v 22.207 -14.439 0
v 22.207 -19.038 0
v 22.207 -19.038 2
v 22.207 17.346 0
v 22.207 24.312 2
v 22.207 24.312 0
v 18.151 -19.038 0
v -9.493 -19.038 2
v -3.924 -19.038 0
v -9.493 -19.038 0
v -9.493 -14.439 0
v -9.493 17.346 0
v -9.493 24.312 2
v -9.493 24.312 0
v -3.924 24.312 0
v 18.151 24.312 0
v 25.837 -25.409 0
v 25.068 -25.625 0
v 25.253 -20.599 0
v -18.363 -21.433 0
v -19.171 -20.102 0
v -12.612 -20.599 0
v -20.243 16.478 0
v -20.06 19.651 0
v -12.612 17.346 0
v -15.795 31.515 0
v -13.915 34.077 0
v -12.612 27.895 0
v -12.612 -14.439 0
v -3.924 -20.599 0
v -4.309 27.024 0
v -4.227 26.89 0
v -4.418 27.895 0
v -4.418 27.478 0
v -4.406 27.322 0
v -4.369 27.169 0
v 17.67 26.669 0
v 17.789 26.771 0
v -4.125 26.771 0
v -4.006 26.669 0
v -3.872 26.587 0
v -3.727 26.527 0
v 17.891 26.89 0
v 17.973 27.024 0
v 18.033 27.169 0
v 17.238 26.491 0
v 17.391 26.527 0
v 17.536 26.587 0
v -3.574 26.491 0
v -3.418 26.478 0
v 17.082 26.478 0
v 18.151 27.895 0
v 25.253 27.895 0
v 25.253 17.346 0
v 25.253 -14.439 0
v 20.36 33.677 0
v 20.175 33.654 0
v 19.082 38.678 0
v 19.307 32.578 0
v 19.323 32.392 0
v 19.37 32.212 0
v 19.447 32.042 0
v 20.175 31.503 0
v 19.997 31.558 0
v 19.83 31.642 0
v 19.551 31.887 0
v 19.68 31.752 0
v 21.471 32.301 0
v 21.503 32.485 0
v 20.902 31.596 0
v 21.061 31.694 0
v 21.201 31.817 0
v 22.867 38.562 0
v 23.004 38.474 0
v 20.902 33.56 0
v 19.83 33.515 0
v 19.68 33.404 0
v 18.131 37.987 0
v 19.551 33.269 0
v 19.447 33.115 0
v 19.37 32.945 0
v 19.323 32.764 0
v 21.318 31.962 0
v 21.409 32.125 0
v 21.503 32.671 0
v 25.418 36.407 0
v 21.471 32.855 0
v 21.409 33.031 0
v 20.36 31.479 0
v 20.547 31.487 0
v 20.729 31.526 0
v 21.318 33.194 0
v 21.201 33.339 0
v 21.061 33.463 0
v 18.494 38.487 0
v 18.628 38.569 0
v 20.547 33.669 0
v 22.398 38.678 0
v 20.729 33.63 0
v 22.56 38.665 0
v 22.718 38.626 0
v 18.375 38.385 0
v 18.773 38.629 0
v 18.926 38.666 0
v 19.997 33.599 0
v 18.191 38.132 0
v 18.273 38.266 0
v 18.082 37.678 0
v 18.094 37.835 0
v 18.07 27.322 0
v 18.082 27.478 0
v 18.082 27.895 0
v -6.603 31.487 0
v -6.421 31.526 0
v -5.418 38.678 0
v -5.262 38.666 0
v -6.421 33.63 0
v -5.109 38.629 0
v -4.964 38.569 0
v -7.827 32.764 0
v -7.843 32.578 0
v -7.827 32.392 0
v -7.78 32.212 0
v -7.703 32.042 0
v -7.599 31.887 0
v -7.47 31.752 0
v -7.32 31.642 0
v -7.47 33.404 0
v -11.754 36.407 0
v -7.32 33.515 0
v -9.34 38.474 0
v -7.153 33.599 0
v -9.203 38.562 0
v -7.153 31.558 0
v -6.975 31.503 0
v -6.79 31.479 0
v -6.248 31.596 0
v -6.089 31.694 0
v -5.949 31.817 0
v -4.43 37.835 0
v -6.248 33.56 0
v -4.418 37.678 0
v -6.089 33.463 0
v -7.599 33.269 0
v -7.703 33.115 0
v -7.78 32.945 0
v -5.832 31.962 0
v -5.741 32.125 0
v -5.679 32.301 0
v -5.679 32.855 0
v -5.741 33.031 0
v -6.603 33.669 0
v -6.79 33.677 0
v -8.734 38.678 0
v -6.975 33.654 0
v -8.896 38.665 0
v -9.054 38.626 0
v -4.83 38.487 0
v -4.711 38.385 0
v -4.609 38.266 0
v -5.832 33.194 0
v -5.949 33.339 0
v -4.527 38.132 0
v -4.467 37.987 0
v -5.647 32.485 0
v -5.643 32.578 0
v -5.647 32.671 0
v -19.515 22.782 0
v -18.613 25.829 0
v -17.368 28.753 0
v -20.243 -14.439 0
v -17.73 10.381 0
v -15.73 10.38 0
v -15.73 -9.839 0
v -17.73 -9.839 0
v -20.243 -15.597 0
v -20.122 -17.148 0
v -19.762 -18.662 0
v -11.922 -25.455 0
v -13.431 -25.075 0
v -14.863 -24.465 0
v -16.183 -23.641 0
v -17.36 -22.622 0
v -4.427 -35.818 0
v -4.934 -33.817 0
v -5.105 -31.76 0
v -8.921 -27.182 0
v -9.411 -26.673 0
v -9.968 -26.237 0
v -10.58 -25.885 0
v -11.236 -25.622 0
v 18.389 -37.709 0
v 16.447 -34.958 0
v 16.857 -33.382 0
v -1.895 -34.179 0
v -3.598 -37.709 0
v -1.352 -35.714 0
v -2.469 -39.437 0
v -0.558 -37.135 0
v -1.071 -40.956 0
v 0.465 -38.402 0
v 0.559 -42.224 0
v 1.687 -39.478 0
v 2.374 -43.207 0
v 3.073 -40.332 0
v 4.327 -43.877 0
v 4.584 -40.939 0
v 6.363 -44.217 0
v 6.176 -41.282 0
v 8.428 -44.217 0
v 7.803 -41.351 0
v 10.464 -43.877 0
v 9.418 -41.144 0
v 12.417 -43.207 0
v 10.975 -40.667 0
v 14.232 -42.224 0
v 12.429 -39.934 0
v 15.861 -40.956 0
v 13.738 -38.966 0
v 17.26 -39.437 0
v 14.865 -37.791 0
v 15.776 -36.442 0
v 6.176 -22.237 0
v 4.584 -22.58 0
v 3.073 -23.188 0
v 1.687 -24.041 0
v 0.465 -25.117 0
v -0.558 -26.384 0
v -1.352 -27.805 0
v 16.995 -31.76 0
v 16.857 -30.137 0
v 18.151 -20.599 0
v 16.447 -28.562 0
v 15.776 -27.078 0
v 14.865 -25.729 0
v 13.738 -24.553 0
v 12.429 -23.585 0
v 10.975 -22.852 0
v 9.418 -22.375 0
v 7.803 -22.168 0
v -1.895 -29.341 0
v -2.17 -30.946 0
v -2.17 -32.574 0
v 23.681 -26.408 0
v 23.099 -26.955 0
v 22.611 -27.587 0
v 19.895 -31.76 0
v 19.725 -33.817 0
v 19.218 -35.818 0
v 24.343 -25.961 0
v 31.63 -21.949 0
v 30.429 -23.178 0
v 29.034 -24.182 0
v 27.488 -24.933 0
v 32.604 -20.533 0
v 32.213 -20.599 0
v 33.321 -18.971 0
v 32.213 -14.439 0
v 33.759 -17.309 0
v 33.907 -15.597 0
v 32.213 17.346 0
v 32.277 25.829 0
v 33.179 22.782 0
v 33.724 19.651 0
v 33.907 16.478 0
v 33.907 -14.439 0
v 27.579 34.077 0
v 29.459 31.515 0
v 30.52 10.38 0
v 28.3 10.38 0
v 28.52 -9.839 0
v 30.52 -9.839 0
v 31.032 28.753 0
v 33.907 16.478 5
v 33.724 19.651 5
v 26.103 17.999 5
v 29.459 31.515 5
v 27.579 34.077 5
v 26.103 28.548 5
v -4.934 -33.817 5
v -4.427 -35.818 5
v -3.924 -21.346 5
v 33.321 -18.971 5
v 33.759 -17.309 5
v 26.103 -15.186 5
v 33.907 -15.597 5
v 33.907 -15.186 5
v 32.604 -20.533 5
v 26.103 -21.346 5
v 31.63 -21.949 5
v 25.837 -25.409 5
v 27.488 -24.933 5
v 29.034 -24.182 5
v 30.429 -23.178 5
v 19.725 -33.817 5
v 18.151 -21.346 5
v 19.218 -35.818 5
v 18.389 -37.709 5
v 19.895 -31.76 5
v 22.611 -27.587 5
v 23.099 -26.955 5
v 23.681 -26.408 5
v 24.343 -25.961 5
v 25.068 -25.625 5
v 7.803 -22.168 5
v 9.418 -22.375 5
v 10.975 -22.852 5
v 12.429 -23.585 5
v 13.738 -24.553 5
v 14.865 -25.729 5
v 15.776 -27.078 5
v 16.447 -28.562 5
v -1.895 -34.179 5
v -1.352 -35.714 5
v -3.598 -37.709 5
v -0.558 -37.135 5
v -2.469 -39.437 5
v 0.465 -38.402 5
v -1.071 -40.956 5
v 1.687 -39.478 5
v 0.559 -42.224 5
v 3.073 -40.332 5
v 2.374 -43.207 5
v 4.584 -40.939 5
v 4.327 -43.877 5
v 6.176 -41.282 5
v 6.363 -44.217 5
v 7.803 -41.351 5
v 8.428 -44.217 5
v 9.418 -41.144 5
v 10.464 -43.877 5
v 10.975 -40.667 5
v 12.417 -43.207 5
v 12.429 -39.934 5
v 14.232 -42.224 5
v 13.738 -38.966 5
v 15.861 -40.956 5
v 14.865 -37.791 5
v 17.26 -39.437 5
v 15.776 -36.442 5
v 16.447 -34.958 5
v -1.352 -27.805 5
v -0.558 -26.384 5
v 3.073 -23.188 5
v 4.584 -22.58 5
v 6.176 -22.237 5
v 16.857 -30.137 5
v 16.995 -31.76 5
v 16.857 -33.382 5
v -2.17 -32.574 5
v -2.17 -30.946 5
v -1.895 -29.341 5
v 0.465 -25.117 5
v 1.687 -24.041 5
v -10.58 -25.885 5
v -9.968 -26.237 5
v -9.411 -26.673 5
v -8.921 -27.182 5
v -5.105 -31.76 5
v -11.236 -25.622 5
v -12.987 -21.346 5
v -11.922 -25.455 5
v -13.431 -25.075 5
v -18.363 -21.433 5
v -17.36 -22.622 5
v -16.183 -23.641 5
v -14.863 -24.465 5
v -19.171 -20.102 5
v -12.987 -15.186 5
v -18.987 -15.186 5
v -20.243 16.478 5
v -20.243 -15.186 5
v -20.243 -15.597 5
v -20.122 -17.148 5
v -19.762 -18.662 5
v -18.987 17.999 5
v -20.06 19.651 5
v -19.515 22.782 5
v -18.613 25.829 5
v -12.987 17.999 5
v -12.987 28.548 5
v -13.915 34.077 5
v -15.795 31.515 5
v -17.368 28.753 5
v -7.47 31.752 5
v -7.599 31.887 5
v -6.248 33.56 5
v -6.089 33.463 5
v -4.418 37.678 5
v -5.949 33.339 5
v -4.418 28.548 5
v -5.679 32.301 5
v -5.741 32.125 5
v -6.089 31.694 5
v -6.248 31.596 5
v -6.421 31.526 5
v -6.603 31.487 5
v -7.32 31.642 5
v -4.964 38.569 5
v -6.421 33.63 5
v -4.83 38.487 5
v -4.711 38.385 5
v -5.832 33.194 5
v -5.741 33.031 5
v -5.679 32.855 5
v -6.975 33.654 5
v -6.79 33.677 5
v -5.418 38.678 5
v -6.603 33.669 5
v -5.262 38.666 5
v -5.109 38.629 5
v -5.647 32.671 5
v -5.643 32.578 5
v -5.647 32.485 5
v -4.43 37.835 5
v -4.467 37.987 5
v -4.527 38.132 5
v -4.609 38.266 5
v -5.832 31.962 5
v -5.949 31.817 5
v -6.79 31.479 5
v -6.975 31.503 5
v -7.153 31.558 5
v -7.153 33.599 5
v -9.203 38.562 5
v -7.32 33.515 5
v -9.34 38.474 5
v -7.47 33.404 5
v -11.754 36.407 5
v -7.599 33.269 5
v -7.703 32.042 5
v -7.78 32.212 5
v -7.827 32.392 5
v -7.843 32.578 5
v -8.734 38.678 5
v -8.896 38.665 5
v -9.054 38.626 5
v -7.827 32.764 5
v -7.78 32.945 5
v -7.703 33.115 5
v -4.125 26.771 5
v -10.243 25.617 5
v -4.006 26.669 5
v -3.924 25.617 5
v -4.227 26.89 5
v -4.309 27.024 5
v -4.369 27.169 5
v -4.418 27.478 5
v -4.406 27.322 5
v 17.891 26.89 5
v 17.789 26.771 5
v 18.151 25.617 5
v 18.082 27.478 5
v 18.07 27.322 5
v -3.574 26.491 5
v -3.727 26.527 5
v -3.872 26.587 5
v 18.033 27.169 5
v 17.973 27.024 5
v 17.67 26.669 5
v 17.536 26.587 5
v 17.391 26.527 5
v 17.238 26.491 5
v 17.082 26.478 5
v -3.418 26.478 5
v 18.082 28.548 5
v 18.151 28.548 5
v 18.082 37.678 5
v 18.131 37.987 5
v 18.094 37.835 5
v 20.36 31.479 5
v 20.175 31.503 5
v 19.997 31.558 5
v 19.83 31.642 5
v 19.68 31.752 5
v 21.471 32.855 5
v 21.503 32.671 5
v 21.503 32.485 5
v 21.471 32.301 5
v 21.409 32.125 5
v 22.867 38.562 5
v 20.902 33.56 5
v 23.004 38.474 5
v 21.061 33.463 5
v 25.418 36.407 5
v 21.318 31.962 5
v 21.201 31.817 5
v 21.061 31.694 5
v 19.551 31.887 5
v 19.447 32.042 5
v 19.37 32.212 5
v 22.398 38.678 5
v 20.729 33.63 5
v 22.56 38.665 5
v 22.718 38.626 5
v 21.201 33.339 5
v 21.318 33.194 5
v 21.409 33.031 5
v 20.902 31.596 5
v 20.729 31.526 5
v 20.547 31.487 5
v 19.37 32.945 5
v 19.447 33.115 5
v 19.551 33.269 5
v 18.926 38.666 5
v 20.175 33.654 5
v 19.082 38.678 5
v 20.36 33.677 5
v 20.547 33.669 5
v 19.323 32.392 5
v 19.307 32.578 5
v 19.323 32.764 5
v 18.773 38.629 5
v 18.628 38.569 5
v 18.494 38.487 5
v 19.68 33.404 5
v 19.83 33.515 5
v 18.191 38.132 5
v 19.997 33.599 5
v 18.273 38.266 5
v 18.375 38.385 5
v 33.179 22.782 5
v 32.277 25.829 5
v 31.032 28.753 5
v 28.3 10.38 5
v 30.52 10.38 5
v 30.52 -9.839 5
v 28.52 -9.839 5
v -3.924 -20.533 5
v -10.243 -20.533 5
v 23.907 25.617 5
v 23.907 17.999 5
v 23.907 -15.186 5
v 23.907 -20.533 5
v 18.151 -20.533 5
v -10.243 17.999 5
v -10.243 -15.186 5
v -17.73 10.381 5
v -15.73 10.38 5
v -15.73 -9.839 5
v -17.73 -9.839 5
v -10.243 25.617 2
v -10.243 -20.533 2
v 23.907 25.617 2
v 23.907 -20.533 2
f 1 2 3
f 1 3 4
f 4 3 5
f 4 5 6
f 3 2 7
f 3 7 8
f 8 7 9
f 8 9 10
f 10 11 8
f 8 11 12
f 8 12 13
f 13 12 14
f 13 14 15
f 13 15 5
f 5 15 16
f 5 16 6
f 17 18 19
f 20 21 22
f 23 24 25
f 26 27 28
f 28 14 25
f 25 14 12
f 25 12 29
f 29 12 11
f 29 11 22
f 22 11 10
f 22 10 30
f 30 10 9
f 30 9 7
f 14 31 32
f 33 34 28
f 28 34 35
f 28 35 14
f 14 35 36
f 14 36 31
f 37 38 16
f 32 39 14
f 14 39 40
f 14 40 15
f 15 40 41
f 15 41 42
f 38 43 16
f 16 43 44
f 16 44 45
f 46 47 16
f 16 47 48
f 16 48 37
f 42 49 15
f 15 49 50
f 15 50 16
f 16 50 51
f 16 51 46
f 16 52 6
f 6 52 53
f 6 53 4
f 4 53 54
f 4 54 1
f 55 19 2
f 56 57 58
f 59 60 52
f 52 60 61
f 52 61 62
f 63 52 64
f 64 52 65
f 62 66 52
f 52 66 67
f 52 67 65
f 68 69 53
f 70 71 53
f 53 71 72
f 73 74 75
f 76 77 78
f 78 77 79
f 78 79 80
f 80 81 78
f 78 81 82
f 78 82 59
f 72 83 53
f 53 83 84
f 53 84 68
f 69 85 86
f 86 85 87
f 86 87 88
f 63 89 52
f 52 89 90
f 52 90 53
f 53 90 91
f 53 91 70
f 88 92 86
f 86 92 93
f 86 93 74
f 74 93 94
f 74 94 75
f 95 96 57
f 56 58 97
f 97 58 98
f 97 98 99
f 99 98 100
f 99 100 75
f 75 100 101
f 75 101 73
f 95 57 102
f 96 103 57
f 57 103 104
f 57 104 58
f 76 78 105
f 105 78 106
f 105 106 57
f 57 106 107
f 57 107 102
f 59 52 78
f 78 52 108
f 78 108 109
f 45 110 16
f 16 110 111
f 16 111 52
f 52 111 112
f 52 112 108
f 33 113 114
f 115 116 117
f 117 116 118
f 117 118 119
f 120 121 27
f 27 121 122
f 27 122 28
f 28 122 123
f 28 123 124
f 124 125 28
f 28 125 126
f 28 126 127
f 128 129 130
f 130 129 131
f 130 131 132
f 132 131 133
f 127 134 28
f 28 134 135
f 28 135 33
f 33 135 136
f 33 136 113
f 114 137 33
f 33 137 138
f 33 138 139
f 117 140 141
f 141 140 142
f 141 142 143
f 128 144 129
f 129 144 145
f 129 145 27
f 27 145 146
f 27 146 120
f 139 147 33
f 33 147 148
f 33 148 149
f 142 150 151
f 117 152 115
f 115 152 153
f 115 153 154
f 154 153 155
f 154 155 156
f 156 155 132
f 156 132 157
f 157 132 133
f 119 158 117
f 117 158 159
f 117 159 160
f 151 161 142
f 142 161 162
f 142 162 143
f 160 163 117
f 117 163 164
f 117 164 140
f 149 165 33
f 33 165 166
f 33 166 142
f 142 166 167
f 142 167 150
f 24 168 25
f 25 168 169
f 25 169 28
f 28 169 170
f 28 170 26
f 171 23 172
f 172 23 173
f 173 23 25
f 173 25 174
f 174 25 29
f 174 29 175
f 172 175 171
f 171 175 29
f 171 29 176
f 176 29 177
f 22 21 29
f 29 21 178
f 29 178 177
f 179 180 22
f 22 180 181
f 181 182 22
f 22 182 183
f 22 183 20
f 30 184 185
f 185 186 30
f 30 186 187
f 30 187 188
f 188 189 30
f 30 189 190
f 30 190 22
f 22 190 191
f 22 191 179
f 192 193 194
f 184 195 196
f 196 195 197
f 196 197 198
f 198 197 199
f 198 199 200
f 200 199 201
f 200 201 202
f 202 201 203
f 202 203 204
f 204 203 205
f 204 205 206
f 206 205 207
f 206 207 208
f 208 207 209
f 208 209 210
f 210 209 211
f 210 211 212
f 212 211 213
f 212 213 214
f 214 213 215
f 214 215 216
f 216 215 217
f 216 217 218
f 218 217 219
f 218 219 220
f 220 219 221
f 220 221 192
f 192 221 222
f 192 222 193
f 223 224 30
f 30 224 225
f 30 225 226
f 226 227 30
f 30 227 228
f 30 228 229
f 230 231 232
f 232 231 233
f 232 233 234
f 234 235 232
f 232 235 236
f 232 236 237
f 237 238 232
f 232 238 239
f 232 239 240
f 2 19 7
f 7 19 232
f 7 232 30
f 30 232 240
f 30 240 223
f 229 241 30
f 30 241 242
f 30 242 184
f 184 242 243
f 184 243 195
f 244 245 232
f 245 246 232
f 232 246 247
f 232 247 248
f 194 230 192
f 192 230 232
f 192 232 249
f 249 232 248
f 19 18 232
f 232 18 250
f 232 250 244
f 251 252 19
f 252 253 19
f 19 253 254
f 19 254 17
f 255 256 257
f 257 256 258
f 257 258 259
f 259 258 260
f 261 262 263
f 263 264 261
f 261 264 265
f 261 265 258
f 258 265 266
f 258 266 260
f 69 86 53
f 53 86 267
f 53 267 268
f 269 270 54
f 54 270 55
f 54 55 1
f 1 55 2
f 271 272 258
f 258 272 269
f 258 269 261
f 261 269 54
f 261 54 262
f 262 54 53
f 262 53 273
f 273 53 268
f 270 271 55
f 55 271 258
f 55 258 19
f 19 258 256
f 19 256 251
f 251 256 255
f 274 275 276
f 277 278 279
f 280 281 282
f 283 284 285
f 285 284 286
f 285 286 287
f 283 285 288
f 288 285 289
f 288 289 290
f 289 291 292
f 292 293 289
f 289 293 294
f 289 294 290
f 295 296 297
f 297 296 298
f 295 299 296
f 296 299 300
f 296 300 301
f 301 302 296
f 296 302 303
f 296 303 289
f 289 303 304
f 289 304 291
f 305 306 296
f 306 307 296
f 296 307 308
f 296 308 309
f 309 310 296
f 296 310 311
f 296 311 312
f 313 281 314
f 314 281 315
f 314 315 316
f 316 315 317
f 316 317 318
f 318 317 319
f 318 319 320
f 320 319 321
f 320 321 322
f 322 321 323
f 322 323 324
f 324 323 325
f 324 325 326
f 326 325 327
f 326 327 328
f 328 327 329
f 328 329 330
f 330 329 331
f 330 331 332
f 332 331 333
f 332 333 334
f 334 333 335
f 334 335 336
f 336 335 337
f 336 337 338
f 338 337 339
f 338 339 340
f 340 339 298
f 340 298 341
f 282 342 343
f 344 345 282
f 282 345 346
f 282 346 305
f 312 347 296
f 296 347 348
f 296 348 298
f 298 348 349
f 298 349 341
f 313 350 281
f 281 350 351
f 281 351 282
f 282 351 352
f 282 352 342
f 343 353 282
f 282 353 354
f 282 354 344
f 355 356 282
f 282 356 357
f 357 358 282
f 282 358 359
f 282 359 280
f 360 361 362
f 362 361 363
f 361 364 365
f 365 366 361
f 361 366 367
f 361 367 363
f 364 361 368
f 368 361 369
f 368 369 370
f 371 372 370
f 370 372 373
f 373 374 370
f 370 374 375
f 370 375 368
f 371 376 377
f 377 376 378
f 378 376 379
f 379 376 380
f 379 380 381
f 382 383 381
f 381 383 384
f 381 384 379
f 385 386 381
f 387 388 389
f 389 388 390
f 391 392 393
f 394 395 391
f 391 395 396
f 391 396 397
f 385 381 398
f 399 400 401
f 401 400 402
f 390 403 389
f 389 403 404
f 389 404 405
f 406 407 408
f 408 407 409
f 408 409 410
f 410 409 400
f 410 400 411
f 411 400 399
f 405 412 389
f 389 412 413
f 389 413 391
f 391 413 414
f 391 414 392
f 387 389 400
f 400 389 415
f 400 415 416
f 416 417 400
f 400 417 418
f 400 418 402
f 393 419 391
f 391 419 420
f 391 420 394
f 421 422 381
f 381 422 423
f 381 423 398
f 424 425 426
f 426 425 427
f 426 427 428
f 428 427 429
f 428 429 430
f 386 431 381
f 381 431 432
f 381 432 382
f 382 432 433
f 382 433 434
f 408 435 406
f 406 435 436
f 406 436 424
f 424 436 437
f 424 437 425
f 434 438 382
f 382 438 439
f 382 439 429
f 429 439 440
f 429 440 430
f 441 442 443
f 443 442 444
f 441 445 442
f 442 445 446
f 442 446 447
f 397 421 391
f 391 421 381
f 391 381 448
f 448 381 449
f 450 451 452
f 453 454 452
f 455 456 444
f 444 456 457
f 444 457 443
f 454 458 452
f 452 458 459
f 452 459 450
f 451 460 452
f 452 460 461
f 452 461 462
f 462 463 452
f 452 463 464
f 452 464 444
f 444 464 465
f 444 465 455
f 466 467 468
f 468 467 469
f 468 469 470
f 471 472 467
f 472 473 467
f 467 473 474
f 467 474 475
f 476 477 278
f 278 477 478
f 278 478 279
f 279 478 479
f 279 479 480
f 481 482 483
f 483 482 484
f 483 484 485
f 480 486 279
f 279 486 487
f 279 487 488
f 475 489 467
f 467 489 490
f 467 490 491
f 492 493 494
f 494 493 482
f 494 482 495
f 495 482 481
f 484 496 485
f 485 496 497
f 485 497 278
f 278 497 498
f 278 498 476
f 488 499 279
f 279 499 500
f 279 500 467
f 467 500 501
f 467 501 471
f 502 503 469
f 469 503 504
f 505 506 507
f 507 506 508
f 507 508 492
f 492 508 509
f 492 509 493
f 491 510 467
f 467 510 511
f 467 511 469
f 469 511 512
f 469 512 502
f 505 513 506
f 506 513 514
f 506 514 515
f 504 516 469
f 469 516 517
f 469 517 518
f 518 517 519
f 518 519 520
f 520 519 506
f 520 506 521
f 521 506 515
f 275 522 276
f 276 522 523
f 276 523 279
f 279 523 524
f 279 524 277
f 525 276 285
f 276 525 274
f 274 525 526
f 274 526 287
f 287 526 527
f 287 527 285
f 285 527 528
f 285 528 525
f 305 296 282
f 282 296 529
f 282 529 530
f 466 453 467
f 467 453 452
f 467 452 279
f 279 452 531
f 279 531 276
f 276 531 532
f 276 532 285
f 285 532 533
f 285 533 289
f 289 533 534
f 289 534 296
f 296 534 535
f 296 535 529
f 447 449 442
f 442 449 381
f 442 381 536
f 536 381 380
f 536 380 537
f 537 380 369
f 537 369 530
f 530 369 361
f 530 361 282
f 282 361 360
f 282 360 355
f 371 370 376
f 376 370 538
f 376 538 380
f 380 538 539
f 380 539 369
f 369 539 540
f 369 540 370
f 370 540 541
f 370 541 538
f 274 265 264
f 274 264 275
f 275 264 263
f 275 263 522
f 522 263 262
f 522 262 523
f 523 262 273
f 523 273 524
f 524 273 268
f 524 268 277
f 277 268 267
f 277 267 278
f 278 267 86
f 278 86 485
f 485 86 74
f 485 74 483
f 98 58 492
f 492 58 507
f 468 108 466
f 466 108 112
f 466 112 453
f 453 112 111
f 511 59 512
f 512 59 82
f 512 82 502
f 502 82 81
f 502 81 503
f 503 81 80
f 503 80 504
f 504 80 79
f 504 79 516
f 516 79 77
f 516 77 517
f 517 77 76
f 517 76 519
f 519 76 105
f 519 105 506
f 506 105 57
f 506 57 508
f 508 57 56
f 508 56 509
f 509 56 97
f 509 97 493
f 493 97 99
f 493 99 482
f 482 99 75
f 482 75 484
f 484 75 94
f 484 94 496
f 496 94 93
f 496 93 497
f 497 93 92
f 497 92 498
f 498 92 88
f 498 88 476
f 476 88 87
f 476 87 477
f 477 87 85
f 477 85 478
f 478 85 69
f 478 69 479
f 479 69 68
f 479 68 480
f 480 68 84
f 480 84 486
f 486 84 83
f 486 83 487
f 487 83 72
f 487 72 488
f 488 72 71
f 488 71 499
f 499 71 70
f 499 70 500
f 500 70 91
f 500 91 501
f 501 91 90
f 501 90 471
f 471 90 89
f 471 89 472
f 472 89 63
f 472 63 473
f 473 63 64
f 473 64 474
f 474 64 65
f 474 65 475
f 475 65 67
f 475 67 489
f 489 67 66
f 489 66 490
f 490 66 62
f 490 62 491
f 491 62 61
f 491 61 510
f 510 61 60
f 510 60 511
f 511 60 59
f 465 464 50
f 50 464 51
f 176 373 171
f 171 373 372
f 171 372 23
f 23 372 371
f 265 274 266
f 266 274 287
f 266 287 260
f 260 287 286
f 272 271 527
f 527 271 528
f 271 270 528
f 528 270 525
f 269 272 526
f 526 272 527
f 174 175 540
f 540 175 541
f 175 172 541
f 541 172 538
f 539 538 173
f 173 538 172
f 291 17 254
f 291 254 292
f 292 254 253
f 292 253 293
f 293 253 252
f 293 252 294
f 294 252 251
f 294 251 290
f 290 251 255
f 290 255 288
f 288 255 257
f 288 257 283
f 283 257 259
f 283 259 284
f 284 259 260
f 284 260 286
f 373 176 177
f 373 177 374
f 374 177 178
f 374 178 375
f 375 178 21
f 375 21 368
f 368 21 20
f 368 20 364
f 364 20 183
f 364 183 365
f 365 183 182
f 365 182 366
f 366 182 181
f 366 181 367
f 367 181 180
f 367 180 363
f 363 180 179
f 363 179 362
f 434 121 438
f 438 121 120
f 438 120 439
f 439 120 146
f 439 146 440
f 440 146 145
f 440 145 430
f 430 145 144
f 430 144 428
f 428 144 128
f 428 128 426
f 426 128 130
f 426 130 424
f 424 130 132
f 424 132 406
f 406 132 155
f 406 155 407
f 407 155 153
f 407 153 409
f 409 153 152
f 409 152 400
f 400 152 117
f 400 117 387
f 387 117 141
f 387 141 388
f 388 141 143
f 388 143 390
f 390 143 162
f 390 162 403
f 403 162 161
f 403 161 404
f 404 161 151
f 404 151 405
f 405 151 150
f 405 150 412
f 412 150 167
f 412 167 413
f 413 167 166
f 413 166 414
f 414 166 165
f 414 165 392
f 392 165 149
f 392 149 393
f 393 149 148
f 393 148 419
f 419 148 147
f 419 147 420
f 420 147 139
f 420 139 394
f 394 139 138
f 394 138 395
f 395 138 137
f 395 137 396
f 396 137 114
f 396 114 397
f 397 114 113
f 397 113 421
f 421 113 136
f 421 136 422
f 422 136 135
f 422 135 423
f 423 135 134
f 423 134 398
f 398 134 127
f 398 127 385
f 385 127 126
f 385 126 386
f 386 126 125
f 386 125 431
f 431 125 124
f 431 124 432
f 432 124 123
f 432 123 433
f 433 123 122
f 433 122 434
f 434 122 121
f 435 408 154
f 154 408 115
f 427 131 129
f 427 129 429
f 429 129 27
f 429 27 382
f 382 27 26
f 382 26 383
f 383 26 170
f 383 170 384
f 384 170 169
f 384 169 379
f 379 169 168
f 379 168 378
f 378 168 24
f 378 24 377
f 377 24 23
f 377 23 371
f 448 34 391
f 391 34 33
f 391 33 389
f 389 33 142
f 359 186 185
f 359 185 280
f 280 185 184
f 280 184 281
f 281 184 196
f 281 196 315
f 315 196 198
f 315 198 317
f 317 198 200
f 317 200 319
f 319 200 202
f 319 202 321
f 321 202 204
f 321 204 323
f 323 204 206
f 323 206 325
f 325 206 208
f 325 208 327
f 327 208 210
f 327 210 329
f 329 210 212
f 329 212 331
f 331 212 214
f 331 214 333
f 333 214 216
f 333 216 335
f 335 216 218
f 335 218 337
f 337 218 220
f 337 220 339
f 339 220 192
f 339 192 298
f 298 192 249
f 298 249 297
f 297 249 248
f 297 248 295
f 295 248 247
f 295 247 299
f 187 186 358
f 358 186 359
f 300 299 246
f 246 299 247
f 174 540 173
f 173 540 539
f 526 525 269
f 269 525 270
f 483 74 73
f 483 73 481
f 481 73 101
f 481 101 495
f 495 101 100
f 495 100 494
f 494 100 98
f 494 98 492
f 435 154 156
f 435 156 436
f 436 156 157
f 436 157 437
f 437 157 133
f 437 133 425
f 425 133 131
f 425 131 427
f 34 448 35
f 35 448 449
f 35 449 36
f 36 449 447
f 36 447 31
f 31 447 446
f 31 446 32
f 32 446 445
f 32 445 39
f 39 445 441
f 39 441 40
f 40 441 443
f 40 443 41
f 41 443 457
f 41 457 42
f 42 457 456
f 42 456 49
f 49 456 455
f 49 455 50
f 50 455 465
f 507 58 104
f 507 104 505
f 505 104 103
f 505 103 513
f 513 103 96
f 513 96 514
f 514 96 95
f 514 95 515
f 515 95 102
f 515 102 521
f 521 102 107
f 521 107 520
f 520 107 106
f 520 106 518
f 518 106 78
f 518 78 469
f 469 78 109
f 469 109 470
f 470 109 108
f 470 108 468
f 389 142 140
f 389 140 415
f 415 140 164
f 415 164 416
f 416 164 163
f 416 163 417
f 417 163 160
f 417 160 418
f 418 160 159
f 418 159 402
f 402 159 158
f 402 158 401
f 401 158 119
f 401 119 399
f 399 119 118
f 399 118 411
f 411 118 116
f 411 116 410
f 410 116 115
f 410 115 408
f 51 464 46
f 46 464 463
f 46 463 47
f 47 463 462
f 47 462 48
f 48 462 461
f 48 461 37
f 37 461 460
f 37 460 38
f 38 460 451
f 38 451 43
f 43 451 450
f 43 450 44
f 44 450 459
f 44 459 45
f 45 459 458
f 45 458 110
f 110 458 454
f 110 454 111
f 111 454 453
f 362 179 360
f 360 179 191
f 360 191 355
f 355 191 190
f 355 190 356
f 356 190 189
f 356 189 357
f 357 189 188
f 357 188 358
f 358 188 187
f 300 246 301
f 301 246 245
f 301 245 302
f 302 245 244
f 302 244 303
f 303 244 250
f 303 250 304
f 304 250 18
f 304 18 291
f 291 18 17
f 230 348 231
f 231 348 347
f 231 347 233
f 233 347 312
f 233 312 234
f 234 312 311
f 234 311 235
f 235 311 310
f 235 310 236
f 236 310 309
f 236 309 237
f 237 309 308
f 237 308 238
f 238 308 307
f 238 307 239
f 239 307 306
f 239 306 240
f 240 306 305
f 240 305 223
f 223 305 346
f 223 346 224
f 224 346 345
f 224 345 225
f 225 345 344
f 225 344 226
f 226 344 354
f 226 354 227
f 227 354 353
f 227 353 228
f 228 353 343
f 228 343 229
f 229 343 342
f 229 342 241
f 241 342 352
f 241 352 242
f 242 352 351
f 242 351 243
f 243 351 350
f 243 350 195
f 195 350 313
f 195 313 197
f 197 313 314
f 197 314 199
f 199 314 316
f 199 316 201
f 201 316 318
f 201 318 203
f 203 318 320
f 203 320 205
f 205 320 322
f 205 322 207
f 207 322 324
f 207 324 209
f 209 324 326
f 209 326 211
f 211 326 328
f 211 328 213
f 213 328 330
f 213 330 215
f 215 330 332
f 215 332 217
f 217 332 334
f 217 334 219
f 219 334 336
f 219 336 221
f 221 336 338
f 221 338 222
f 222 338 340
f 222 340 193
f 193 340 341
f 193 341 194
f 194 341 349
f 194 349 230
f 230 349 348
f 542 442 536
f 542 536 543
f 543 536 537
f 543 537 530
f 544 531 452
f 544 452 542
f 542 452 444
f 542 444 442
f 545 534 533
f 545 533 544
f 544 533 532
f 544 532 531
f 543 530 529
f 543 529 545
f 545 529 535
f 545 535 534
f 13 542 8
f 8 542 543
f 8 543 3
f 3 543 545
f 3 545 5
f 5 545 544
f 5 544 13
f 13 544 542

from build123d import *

# Parameters (mm, degrees)
ESQUISSE1_W             = 31.7
ESQUISSE1_H             = 43.35
BOSS_EXTRU_1_DEPTH      = 2
ESQUISSE2_W             = 54.15
ESQUISSE2_H             = 52.075
ESQUISSE2_W_2           = 34.15
ESQUISSE2_H_2           = 46.15
BOSS_EXTRU_2_DEPTH      = 3
ENL_V_MAT_EXTRU_1_DEPTH = 44.310222651
CONG_1_R                = 10
BOSS_EXTRU_3_START      = 5
ESQUISSE4_R             = 1.1
ESQUISSE4_W             = 2
ESQUISSE4_H             = 20.22
ESQUISSE4_W_2           = 2.219999677
ESQUISSE4_H_2           = 20.218803133
BOSS_EXTRU_3_DEPTH      = 5
CONG_2_R                = 1
CONG_3_R                = 5
ESQUISSE5_R             = 9.6
ENL_V_MAT_EXTRU_2_DEPTH = 56.978552241
ESQUISSE7_W             = 31.7
ESQUISSE7_H             = 43.35
ENL_V_MAT_EXTRU_3_DEPTH = 56.978552241
ESQUISSE7_4_W           = 34.15
ESQUISSE7_4_H           = 46.15
ENL_V_MAT_EXTRU_4_DEPTH = 3


with BuildPart() as part:
    # Esquisse1 → Boss.-Extru.1 (new body)
    with BuildSketch(Plane.XY):
        Polygon((-20.243056538, 24.478190482), (-20.243056538, -25.521809518), (-20.243056538, -25.596809518), (6.831943462, -25.596809518), (33.906943462, -25.596809518), (33.906943462, -25.521809518), (33.906943462, 24.478190482), (33.906943462, 26.478190482), (5.831943462, 26.478190482), (-20.243056538, 26.478190482), align=None)
        with Locations((6.356943462, -0.426809518)):
            Rectangle(ESQUISSE1_W, ESQUISSE1_H, mode=Mode.SUBTRACT)
    extrude(amount=BOSS_EXTRU_1_DEPTH)

    # Esquisse2 → Boss.-Extru.2 (add)
    with BuildSketch(Plane.XY.offset(2)):
        with Locations((6.831943462, 0.440690482)):
            Rectangle(ESQUISSE2_W, ESQUISSE2_H)
        with Locations((5.881943462, -0.331809518)):
            Rectangle(ESQUISSE2_W_2, ESQUISSE2_H_2, mode=Mode.SUBTRACT)
    extrude(amount=BOSS_EXTRU_2_DEPTH)

    # Esquisse3 → Enl_v. mat.-Extru.1 (cut, through all)
    with BuildSketch(Plane.XY.offset(5)):
        Polygon((-17.730491461, -9.839116901), (-17.730491461, 10.380883099), (-15.510491784, 10.379686232), (-15.730491461, -9.839116901), align=None)
        Polygon((28.519508539, -9.839116901), (28.299508862, 10.379686232), (30.519508539, 10.380883099), (30.519508539, -9.839116901), align=None)
    extrude(amount=-ENL_V_MAT_EXTRU_1_DEPTH, mode=Mode.SUBTRACT)

    # Cong_1
    cong_1_edges = [part.edges().sort_by_distance(p)[0] for p in [
        (33.906943462, 26.478190482, 2.5),
        (33.906943462, -25.596809518, 2.5),
        (-20.243056538, -25.596809518, 2.5),
        (-20.243056538, 26.478190482, 2.5),
    ]]
    fillet(cong_1_edges, radius=CONG_1_R)

    # Esquisse4 → Boss.-Extru.3 (add)
    with BuildSketch(Plane.XY.offset(BOSS_EXTRU_3_START)):
        with BuildLine():
            Line((-9.068056538, 38.678190482), (-4.418056538, 38.678190482))
            Line((-4.418056538, 38.678190482), (-4.418056538, 26.478190482))
            Line((-4.418056538, 26.478190482), (18.081943462, 26.478190482))
            Line((18.081943462, 26.478190482), (18.081943462, 38.678190482))
            Line((18.081943462, 38.678190482), (22.731943462, 38.678190482))
            ThreePointArc((22.731943462, 38.678190482), (30.955617573, 28.905183532), (33.906943462, 16.478190482))
            Line((33.906943462, 16.478190482), (33.906943462, -15.596809518))
            ThreePointArc((33.906943462, -15.596809518), (30.978011273, -22.66787733), (23.906943462, -25.596809518))
            Line((23.906943462, -25.596809518), (19.895450173, -31.759659919))
            ThreePointArc((19.895450173, -31.759659919), (7.395450173, -44.259659919), (-5.104549827, -31.759659919))
            Line((-5.104549827, -31.759659919), (-10.243056538, -25.596809518))
            ThreePointArc((-10.243056538, -25.596809518), (-17.31412435, -22.66787733), (-20.243056538, -15.596809518))
            Line((-20.243056538, -15.596809518), (-20.243056538, 16.478190482))
            ThreePointArc((-20.243056538, 16.478190482), (-17.29173065, 28.905183532), (-9.068056538, 38.678190482))
        make_face()
        with Locations((-6.743056538, 32.578190482)):
            Circle(ESQUISSE4_R, mode=Mode.SUBTRACT)
        with Locations((20.406943462, 32.578190482)):
            Circle(ESQUISSE4_R, mode=Mode.SUBTRACT)
        with Locations((-16.730491461, 0.270883099)):
            Rectangle(ESQUISSE4_W, ESQUISSE4_H, mode=Mode.SUBTRACT)
        with Locations((29.409508701, 0.270284666)):
            Rectangle(ESQUISSE4_W_2, ESQUISSE4_H_2, mode=Mode.SUBTRACT)
    extrude(amount=-BOSS_EXTRU_3_DEPTH)

    # Cong_2
    cong_2_edges = [part.edges().sort_by_distance(p)[0] for p in [
        (-4.418056538, 26.478190482, 2.5),
        (18.081943462, 38.678190482, 2.5),
        (-4.418056538, 38.678190482, 2.5),
        (18.081943462, 26.478190482, 2.5),
        (22.731943462, 38.678190482, 2.5),
        (-9.068056538, 38.678190482, 2.5),
    ]]
    fillet(cong_2_edges, radius=CONG_2_R)

    # Cong_3
    cong_3_edges = [part.edges().sort_by_distance(p)[0] for p in [
        (-10.243056538, -25.596809518, 2.5),
        (23.906943462, -25.596809518, 2.5),
    ]]
    fillet(cong_3_edges, radius=CONG_3_R)

    # Esquisse5 → Enl_v. mat.-Extru.2 (cut, through all)
    with BuildSketch(Plane.XY.offset(5)):
        with Locations((7.395450173, -31.759659919)):
            Circle(ESQUISSE5_R)
    extrude(amount=-ENL_V_MAT_EXTRU_2_DEPTH, mode=Mode.SUBTRACT)

    # Esquisse7 → Enl_v. mat.-Extru.3 (cut, through all)
    with BuildSketch(Plane.XY.offset(5)):
        with Locations((6.356943462, 2.63695892)):
            Rectangle(ESQUISSE7_W, ESQUISSE7_H)
    extrude(amount=-ENL_V_MAT_EXTRU_3_DEPTH, mode=Mode.SUBTRACT)

    # Esquisse7_4 → Enl_v. mat.-Extru.4 (cut)
    with BuildSketch(Plane.XY.offset(5)):
        with Locations((6.831943462, 2.54195892)):
            Rectangle(ESQUISSE7_4_W, ESQUISSE7_4_H)
    extrude(amount=-ENL_V_MAT_EXTRU_4_DEPTH, mode=Mode.SUBTRACT)


solid = part.part
